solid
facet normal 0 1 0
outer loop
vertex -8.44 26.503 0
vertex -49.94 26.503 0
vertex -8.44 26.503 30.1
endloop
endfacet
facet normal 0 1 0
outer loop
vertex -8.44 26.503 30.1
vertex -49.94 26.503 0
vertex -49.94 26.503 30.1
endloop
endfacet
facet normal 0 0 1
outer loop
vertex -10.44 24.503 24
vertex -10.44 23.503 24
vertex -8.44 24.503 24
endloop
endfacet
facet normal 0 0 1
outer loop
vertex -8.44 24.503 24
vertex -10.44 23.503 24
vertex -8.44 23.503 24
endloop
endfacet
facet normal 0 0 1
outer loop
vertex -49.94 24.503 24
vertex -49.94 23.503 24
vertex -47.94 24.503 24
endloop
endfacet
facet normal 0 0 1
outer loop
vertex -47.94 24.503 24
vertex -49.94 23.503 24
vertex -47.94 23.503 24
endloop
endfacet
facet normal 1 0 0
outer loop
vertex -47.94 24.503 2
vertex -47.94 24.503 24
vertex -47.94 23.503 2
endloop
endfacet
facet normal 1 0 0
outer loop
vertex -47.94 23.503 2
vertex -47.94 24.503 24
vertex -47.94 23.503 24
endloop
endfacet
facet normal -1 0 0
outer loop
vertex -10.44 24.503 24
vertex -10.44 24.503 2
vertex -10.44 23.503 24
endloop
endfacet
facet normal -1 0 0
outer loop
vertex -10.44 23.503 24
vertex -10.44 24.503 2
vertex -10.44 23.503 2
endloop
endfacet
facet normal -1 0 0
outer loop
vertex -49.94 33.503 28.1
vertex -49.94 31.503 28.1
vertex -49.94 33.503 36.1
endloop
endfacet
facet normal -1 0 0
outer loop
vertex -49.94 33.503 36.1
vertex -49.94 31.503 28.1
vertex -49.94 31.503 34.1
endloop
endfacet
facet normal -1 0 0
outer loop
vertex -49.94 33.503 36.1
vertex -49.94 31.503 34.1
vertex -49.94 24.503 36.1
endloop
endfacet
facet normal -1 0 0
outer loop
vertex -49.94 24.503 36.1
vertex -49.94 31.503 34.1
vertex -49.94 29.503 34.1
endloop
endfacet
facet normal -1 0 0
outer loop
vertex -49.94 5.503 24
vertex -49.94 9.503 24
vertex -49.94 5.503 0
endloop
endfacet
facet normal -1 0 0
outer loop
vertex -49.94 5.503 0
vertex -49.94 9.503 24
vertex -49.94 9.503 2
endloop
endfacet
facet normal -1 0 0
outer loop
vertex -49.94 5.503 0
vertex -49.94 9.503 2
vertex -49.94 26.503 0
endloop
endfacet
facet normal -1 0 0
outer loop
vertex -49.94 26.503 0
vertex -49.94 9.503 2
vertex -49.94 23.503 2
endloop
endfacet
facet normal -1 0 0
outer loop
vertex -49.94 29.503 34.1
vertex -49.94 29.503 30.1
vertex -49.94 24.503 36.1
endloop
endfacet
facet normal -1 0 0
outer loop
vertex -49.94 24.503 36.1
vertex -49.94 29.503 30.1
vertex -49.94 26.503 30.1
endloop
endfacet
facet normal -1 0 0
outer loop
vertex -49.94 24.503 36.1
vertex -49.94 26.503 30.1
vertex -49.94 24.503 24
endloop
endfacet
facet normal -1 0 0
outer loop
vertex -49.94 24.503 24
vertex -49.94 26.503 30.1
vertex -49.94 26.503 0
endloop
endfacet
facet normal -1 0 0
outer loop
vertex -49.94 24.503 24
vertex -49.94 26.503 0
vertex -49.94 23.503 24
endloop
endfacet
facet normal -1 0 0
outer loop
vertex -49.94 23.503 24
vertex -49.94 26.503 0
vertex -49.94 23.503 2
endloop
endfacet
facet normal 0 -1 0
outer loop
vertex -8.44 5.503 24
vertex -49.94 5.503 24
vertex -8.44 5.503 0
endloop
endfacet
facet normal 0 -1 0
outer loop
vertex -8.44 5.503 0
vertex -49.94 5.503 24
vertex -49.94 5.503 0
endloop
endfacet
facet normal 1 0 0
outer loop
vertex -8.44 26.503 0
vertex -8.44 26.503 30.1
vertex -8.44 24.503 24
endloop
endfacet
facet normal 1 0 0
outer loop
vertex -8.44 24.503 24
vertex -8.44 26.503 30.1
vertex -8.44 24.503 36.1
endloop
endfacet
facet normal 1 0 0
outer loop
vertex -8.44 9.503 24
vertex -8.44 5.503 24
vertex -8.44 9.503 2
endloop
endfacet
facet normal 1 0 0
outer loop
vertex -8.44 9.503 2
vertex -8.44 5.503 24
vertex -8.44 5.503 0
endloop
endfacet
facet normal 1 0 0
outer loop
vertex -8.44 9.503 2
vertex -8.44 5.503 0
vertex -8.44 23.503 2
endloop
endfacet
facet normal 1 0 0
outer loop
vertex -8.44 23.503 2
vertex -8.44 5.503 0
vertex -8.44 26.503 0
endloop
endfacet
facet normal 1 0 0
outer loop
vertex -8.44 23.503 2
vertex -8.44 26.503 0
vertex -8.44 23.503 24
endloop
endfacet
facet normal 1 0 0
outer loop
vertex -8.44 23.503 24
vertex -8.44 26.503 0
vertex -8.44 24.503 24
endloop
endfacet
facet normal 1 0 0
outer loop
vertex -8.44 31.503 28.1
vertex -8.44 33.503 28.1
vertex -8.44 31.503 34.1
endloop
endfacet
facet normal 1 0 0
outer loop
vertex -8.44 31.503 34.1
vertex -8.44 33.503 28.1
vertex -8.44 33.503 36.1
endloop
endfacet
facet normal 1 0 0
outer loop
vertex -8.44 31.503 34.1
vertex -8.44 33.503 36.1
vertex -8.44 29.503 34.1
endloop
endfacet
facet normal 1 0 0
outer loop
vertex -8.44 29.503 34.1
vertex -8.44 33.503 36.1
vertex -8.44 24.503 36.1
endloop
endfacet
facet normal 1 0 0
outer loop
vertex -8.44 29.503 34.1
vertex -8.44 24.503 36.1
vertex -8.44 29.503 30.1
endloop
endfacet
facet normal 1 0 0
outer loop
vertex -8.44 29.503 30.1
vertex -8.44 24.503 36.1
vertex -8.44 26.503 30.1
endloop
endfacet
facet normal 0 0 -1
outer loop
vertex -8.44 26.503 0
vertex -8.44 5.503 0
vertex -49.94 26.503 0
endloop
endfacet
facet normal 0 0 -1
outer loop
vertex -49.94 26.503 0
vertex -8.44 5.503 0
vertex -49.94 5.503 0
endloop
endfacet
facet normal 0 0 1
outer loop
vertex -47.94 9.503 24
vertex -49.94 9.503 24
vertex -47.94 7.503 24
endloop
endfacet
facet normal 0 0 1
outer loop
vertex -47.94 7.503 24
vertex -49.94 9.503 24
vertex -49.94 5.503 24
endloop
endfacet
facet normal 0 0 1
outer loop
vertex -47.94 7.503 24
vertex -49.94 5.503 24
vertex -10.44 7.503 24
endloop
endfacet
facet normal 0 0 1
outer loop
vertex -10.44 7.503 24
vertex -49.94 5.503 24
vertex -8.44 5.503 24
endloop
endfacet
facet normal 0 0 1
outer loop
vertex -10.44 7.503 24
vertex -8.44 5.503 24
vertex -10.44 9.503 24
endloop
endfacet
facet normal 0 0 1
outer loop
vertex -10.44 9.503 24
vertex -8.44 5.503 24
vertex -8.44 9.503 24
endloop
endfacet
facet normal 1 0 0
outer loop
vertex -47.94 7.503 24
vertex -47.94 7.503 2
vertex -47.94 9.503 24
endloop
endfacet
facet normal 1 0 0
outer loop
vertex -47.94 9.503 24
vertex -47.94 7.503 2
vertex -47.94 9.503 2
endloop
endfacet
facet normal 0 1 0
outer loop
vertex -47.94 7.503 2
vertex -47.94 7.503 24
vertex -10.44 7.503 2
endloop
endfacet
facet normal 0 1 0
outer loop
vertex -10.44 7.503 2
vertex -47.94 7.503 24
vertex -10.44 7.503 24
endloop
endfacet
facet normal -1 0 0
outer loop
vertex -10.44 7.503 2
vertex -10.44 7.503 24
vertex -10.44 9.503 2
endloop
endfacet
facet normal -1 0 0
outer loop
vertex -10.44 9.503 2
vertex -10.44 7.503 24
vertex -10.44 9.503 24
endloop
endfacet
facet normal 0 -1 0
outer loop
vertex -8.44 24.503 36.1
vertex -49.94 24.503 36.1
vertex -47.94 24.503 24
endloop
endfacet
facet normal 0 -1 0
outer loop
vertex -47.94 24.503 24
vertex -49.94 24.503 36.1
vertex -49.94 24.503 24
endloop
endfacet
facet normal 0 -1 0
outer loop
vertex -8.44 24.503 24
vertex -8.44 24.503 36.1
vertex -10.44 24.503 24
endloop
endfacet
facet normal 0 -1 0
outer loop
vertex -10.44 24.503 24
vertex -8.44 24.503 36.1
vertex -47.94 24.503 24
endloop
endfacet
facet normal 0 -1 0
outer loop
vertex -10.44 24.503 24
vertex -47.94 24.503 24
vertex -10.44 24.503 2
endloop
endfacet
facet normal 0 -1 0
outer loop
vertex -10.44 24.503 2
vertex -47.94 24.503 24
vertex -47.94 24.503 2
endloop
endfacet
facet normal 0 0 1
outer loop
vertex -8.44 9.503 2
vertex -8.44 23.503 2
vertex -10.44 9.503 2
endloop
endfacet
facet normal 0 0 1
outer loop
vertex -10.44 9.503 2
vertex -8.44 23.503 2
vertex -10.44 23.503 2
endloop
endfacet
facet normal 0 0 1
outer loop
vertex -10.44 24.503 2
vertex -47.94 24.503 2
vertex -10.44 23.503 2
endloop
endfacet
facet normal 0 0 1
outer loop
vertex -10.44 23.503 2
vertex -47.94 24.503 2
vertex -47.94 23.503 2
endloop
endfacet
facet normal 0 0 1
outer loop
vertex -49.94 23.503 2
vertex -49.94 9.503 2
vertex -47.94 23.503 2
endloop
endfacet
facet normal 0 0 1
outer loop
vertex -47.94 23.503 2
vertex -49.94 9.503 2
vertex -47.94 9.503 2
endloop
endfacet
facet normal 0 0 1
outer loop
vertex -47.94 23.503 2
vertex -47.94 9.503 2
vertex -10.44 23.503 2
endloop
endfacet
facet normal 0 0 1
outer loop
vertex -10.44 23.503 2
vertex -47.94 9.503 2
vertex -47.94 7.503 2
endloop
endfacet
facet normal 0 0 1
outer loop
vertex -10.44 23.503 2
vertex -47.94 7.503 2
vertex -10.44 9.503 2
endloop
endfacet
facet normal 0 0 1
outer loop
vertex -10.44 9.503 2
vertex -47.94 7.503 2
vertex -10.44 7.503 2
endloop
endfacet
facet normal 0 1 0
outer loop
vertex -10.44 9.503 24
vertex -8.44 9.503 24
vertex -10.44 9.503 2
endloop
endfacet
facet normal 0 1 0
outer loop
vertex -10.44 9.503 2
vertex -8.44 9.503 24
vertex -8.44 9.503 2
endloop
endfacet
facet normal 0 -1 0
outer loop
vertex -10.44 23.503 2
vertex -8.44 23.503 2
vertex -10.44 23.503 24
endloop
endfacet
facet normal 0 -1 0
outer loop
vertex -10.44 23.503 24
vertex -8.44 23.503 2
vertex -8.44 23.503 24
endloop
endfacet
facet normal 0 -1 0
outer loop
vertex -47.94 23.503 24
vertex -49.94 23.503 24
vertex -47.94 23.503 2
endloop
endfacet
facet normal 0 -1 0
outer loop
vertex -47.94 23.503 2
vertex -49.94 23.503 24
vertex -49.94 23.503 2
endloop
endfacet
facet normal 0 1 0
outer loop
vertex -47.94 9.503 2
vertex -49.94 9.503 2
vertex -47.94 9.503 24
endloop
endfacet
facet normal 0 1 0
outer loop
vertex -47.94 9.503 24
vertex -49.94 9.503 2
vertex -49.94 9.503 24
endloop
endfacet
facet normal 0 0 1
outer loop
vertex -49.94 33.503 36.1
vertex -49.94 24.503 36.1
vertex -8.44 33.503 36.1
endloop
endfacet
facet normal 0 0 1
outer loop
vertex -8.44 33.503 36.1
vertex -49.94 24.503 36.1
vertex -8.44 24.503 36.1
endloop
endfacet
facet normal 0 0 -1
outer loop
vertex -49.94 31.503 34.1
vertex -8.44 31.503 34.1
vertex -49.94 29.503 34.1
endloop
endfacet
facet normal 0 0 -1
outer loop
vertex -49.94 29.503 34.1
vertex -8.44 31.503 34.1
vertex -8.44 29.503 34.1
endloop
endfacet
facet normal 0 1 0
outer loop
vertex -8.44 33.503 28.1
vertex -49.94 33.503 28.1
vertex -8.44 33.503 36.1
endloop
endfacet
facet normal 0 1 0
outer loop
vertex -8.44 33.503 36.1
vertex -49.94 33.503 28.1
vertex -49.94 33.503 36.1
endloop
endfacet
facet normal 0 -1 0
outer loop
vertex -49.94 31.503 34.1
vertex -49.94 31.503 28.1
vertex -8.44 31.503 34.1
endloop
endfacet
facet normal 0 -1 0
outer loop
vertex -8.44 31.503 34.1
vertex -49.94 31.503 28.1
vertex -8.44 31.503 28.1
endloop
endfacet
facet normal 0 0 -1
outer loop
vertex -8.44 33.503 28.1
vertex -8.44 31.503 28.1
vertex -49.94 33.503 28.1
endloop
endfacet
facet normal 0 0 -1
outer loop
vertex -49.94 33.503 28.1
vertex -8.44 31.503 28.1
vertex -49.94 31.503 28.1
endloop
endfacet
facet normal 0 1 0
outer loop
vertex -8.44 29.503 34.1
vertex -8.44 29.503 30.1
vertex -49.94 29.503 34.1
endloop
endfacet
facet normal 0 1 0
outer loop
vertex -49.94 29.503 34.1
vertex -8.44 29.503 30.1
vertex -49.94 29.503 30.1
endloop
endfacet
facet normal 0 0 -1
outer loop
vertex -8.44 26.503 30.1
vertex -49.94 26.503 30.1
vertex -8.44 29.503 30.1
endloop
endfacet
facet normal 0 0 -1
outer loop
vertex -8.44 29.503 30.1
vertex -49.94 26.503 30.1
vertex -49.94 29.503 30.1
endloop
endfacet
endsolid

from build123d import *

# Parameters (mm, degrees)
SALIENTE_EXTRUIR1_DEPTH = 2
SALIENTE_EXTRUIR2_DEPTH = 24
CROQUIS4_W              = 26.838471133
CROQUIS4_H              = 14
CORTAR_EXTRUIR1_DEPTH   = 70.1
SALIENTE_EXTRUIR3_DEPTH = 2
SALIENTE_EXTRUIR4_DEPTH = 2
CROQUIS7_W              = 41.5
CROQUIS7_H              = 2
SALIENTE_EXTRUIR5_DEPTH = 8
SALIENTE_EXTRUIR6_DEPTH = 6


with BuildPart() as part:
    # Croquis1 → Saliente-Extruir1 (new body)
    with BuildSketch(Plane.XY):
        Polygon((-48.939551095, 26.503456625), (-8.439551095, 26.503456625), (-8.439551095, 6.503456625), (-8.439551095, 5.503456625), (-48.939551095, 5.503456625), (-49.939551095, 5.503456625), (-49.939551095, 26.503456625), align=None)
    extrude(amount=SALIENTE_EXTRUIR1_DEPTH)

    # Croquis3 → Saliente-Extruir2 (add)
    with BuildSketch(Plane.XY):
        Polygon((-48.939551095, 26.503456625), (-8.439551095, 26.503456625), (-8.439551095, 6.503456625), (-8.439551095, 5.503456625), (-48.939551095, 5.503456625), (-49.939551095, 5.503456625), (-49.939551095, 26.503456625), align=None)
        Polygon((-46.939551095, 7.503456625), (-47.939551095, 7.503456625), (-47.939551095, 24.503456625), (-46.939551095, 24.503456625), (-10.439551095, 24.503456625), (-10.439551095, 8.503456625), (-10.439551095, 7.503456625), align=None, mode=Mode.SUBTRACT)
    extrude(amount=SALIENTE_EXTRUIR2_DEPTH)

    # Croquis4 → Cortar-Extruir1 (cut)
    with BuildSketch(Plane(origin=(0, 0, 0), x_dir=(0, 0, -1), z_dir=(1, 0, 0))):
        with Locations((-15.419235567, 16.503456625)):
            Rectangle(CROQUIS4_W, CROQUIS4_H)
    extrude(amount=-CORTAR_EXTRUIR1_DEPTH, mode=Mode.SUBTRACT)

    # Croquis5 → Saliente-Extruir3 (add)
    with BuildSketch(Plane(origin=(0, 26.503456625, 0), x_dir=(1, 0, 0), z_dir=(0, 1, 0))):
        Polygon((-49.939551095, -20.607192887), (-8.439551095, -20.607192887), (-8.439551095, -24), (-8.439551095, -36.1), (-48.939551095, -36.1), (-49.939551095, -36.1), align=None)
    extrude(amount=-SALIENTE_EXTRUIR3_DEPTH)

    # Croquis6 → Saliente-Extruir4 (add)
    with BuildSketch(Plane.XY.offset(36.1)):
        Polygon((-8.439551095, 24.503456625), (-8.439551095, 33.503456625), (-48.939551095, 33.503456625), (-49.939551095, 33.503456625), (-49.939551095, 24.503456625), align=None)
    extrude(amount=-SALIENTE_EXTRUIR4_DEPTH)

    # Croquis7 → Saliente-Extruir5 (add)
    with BuildSketch(Plane.XY.offset(36.1)):
        with Locations((-29.189551095, 32.503456625)):
            Rectangle(CROQUIS7_W, CROQUIS7_H)
    extrude(amount=-SALIENTE_EXTRUIR5_DEPTH)

    # Croquis8 → Saliente-Extruir6 (add)
    with BuildSketch(Plane.XY.offset(36.1)):
        Polygon((-49.939551095, 29.503456625), (-49.939551095, 26.503456625), (-49.715027183, 26.503456625), (-8.439551095, 26.503456625), (-8.439551095, 29.503456625), (-49.715027183, 29.503456625), align=None)
    extrude(amount=-SALIENTE_EXTRUIR6_DEPTH)


solid = part.part
